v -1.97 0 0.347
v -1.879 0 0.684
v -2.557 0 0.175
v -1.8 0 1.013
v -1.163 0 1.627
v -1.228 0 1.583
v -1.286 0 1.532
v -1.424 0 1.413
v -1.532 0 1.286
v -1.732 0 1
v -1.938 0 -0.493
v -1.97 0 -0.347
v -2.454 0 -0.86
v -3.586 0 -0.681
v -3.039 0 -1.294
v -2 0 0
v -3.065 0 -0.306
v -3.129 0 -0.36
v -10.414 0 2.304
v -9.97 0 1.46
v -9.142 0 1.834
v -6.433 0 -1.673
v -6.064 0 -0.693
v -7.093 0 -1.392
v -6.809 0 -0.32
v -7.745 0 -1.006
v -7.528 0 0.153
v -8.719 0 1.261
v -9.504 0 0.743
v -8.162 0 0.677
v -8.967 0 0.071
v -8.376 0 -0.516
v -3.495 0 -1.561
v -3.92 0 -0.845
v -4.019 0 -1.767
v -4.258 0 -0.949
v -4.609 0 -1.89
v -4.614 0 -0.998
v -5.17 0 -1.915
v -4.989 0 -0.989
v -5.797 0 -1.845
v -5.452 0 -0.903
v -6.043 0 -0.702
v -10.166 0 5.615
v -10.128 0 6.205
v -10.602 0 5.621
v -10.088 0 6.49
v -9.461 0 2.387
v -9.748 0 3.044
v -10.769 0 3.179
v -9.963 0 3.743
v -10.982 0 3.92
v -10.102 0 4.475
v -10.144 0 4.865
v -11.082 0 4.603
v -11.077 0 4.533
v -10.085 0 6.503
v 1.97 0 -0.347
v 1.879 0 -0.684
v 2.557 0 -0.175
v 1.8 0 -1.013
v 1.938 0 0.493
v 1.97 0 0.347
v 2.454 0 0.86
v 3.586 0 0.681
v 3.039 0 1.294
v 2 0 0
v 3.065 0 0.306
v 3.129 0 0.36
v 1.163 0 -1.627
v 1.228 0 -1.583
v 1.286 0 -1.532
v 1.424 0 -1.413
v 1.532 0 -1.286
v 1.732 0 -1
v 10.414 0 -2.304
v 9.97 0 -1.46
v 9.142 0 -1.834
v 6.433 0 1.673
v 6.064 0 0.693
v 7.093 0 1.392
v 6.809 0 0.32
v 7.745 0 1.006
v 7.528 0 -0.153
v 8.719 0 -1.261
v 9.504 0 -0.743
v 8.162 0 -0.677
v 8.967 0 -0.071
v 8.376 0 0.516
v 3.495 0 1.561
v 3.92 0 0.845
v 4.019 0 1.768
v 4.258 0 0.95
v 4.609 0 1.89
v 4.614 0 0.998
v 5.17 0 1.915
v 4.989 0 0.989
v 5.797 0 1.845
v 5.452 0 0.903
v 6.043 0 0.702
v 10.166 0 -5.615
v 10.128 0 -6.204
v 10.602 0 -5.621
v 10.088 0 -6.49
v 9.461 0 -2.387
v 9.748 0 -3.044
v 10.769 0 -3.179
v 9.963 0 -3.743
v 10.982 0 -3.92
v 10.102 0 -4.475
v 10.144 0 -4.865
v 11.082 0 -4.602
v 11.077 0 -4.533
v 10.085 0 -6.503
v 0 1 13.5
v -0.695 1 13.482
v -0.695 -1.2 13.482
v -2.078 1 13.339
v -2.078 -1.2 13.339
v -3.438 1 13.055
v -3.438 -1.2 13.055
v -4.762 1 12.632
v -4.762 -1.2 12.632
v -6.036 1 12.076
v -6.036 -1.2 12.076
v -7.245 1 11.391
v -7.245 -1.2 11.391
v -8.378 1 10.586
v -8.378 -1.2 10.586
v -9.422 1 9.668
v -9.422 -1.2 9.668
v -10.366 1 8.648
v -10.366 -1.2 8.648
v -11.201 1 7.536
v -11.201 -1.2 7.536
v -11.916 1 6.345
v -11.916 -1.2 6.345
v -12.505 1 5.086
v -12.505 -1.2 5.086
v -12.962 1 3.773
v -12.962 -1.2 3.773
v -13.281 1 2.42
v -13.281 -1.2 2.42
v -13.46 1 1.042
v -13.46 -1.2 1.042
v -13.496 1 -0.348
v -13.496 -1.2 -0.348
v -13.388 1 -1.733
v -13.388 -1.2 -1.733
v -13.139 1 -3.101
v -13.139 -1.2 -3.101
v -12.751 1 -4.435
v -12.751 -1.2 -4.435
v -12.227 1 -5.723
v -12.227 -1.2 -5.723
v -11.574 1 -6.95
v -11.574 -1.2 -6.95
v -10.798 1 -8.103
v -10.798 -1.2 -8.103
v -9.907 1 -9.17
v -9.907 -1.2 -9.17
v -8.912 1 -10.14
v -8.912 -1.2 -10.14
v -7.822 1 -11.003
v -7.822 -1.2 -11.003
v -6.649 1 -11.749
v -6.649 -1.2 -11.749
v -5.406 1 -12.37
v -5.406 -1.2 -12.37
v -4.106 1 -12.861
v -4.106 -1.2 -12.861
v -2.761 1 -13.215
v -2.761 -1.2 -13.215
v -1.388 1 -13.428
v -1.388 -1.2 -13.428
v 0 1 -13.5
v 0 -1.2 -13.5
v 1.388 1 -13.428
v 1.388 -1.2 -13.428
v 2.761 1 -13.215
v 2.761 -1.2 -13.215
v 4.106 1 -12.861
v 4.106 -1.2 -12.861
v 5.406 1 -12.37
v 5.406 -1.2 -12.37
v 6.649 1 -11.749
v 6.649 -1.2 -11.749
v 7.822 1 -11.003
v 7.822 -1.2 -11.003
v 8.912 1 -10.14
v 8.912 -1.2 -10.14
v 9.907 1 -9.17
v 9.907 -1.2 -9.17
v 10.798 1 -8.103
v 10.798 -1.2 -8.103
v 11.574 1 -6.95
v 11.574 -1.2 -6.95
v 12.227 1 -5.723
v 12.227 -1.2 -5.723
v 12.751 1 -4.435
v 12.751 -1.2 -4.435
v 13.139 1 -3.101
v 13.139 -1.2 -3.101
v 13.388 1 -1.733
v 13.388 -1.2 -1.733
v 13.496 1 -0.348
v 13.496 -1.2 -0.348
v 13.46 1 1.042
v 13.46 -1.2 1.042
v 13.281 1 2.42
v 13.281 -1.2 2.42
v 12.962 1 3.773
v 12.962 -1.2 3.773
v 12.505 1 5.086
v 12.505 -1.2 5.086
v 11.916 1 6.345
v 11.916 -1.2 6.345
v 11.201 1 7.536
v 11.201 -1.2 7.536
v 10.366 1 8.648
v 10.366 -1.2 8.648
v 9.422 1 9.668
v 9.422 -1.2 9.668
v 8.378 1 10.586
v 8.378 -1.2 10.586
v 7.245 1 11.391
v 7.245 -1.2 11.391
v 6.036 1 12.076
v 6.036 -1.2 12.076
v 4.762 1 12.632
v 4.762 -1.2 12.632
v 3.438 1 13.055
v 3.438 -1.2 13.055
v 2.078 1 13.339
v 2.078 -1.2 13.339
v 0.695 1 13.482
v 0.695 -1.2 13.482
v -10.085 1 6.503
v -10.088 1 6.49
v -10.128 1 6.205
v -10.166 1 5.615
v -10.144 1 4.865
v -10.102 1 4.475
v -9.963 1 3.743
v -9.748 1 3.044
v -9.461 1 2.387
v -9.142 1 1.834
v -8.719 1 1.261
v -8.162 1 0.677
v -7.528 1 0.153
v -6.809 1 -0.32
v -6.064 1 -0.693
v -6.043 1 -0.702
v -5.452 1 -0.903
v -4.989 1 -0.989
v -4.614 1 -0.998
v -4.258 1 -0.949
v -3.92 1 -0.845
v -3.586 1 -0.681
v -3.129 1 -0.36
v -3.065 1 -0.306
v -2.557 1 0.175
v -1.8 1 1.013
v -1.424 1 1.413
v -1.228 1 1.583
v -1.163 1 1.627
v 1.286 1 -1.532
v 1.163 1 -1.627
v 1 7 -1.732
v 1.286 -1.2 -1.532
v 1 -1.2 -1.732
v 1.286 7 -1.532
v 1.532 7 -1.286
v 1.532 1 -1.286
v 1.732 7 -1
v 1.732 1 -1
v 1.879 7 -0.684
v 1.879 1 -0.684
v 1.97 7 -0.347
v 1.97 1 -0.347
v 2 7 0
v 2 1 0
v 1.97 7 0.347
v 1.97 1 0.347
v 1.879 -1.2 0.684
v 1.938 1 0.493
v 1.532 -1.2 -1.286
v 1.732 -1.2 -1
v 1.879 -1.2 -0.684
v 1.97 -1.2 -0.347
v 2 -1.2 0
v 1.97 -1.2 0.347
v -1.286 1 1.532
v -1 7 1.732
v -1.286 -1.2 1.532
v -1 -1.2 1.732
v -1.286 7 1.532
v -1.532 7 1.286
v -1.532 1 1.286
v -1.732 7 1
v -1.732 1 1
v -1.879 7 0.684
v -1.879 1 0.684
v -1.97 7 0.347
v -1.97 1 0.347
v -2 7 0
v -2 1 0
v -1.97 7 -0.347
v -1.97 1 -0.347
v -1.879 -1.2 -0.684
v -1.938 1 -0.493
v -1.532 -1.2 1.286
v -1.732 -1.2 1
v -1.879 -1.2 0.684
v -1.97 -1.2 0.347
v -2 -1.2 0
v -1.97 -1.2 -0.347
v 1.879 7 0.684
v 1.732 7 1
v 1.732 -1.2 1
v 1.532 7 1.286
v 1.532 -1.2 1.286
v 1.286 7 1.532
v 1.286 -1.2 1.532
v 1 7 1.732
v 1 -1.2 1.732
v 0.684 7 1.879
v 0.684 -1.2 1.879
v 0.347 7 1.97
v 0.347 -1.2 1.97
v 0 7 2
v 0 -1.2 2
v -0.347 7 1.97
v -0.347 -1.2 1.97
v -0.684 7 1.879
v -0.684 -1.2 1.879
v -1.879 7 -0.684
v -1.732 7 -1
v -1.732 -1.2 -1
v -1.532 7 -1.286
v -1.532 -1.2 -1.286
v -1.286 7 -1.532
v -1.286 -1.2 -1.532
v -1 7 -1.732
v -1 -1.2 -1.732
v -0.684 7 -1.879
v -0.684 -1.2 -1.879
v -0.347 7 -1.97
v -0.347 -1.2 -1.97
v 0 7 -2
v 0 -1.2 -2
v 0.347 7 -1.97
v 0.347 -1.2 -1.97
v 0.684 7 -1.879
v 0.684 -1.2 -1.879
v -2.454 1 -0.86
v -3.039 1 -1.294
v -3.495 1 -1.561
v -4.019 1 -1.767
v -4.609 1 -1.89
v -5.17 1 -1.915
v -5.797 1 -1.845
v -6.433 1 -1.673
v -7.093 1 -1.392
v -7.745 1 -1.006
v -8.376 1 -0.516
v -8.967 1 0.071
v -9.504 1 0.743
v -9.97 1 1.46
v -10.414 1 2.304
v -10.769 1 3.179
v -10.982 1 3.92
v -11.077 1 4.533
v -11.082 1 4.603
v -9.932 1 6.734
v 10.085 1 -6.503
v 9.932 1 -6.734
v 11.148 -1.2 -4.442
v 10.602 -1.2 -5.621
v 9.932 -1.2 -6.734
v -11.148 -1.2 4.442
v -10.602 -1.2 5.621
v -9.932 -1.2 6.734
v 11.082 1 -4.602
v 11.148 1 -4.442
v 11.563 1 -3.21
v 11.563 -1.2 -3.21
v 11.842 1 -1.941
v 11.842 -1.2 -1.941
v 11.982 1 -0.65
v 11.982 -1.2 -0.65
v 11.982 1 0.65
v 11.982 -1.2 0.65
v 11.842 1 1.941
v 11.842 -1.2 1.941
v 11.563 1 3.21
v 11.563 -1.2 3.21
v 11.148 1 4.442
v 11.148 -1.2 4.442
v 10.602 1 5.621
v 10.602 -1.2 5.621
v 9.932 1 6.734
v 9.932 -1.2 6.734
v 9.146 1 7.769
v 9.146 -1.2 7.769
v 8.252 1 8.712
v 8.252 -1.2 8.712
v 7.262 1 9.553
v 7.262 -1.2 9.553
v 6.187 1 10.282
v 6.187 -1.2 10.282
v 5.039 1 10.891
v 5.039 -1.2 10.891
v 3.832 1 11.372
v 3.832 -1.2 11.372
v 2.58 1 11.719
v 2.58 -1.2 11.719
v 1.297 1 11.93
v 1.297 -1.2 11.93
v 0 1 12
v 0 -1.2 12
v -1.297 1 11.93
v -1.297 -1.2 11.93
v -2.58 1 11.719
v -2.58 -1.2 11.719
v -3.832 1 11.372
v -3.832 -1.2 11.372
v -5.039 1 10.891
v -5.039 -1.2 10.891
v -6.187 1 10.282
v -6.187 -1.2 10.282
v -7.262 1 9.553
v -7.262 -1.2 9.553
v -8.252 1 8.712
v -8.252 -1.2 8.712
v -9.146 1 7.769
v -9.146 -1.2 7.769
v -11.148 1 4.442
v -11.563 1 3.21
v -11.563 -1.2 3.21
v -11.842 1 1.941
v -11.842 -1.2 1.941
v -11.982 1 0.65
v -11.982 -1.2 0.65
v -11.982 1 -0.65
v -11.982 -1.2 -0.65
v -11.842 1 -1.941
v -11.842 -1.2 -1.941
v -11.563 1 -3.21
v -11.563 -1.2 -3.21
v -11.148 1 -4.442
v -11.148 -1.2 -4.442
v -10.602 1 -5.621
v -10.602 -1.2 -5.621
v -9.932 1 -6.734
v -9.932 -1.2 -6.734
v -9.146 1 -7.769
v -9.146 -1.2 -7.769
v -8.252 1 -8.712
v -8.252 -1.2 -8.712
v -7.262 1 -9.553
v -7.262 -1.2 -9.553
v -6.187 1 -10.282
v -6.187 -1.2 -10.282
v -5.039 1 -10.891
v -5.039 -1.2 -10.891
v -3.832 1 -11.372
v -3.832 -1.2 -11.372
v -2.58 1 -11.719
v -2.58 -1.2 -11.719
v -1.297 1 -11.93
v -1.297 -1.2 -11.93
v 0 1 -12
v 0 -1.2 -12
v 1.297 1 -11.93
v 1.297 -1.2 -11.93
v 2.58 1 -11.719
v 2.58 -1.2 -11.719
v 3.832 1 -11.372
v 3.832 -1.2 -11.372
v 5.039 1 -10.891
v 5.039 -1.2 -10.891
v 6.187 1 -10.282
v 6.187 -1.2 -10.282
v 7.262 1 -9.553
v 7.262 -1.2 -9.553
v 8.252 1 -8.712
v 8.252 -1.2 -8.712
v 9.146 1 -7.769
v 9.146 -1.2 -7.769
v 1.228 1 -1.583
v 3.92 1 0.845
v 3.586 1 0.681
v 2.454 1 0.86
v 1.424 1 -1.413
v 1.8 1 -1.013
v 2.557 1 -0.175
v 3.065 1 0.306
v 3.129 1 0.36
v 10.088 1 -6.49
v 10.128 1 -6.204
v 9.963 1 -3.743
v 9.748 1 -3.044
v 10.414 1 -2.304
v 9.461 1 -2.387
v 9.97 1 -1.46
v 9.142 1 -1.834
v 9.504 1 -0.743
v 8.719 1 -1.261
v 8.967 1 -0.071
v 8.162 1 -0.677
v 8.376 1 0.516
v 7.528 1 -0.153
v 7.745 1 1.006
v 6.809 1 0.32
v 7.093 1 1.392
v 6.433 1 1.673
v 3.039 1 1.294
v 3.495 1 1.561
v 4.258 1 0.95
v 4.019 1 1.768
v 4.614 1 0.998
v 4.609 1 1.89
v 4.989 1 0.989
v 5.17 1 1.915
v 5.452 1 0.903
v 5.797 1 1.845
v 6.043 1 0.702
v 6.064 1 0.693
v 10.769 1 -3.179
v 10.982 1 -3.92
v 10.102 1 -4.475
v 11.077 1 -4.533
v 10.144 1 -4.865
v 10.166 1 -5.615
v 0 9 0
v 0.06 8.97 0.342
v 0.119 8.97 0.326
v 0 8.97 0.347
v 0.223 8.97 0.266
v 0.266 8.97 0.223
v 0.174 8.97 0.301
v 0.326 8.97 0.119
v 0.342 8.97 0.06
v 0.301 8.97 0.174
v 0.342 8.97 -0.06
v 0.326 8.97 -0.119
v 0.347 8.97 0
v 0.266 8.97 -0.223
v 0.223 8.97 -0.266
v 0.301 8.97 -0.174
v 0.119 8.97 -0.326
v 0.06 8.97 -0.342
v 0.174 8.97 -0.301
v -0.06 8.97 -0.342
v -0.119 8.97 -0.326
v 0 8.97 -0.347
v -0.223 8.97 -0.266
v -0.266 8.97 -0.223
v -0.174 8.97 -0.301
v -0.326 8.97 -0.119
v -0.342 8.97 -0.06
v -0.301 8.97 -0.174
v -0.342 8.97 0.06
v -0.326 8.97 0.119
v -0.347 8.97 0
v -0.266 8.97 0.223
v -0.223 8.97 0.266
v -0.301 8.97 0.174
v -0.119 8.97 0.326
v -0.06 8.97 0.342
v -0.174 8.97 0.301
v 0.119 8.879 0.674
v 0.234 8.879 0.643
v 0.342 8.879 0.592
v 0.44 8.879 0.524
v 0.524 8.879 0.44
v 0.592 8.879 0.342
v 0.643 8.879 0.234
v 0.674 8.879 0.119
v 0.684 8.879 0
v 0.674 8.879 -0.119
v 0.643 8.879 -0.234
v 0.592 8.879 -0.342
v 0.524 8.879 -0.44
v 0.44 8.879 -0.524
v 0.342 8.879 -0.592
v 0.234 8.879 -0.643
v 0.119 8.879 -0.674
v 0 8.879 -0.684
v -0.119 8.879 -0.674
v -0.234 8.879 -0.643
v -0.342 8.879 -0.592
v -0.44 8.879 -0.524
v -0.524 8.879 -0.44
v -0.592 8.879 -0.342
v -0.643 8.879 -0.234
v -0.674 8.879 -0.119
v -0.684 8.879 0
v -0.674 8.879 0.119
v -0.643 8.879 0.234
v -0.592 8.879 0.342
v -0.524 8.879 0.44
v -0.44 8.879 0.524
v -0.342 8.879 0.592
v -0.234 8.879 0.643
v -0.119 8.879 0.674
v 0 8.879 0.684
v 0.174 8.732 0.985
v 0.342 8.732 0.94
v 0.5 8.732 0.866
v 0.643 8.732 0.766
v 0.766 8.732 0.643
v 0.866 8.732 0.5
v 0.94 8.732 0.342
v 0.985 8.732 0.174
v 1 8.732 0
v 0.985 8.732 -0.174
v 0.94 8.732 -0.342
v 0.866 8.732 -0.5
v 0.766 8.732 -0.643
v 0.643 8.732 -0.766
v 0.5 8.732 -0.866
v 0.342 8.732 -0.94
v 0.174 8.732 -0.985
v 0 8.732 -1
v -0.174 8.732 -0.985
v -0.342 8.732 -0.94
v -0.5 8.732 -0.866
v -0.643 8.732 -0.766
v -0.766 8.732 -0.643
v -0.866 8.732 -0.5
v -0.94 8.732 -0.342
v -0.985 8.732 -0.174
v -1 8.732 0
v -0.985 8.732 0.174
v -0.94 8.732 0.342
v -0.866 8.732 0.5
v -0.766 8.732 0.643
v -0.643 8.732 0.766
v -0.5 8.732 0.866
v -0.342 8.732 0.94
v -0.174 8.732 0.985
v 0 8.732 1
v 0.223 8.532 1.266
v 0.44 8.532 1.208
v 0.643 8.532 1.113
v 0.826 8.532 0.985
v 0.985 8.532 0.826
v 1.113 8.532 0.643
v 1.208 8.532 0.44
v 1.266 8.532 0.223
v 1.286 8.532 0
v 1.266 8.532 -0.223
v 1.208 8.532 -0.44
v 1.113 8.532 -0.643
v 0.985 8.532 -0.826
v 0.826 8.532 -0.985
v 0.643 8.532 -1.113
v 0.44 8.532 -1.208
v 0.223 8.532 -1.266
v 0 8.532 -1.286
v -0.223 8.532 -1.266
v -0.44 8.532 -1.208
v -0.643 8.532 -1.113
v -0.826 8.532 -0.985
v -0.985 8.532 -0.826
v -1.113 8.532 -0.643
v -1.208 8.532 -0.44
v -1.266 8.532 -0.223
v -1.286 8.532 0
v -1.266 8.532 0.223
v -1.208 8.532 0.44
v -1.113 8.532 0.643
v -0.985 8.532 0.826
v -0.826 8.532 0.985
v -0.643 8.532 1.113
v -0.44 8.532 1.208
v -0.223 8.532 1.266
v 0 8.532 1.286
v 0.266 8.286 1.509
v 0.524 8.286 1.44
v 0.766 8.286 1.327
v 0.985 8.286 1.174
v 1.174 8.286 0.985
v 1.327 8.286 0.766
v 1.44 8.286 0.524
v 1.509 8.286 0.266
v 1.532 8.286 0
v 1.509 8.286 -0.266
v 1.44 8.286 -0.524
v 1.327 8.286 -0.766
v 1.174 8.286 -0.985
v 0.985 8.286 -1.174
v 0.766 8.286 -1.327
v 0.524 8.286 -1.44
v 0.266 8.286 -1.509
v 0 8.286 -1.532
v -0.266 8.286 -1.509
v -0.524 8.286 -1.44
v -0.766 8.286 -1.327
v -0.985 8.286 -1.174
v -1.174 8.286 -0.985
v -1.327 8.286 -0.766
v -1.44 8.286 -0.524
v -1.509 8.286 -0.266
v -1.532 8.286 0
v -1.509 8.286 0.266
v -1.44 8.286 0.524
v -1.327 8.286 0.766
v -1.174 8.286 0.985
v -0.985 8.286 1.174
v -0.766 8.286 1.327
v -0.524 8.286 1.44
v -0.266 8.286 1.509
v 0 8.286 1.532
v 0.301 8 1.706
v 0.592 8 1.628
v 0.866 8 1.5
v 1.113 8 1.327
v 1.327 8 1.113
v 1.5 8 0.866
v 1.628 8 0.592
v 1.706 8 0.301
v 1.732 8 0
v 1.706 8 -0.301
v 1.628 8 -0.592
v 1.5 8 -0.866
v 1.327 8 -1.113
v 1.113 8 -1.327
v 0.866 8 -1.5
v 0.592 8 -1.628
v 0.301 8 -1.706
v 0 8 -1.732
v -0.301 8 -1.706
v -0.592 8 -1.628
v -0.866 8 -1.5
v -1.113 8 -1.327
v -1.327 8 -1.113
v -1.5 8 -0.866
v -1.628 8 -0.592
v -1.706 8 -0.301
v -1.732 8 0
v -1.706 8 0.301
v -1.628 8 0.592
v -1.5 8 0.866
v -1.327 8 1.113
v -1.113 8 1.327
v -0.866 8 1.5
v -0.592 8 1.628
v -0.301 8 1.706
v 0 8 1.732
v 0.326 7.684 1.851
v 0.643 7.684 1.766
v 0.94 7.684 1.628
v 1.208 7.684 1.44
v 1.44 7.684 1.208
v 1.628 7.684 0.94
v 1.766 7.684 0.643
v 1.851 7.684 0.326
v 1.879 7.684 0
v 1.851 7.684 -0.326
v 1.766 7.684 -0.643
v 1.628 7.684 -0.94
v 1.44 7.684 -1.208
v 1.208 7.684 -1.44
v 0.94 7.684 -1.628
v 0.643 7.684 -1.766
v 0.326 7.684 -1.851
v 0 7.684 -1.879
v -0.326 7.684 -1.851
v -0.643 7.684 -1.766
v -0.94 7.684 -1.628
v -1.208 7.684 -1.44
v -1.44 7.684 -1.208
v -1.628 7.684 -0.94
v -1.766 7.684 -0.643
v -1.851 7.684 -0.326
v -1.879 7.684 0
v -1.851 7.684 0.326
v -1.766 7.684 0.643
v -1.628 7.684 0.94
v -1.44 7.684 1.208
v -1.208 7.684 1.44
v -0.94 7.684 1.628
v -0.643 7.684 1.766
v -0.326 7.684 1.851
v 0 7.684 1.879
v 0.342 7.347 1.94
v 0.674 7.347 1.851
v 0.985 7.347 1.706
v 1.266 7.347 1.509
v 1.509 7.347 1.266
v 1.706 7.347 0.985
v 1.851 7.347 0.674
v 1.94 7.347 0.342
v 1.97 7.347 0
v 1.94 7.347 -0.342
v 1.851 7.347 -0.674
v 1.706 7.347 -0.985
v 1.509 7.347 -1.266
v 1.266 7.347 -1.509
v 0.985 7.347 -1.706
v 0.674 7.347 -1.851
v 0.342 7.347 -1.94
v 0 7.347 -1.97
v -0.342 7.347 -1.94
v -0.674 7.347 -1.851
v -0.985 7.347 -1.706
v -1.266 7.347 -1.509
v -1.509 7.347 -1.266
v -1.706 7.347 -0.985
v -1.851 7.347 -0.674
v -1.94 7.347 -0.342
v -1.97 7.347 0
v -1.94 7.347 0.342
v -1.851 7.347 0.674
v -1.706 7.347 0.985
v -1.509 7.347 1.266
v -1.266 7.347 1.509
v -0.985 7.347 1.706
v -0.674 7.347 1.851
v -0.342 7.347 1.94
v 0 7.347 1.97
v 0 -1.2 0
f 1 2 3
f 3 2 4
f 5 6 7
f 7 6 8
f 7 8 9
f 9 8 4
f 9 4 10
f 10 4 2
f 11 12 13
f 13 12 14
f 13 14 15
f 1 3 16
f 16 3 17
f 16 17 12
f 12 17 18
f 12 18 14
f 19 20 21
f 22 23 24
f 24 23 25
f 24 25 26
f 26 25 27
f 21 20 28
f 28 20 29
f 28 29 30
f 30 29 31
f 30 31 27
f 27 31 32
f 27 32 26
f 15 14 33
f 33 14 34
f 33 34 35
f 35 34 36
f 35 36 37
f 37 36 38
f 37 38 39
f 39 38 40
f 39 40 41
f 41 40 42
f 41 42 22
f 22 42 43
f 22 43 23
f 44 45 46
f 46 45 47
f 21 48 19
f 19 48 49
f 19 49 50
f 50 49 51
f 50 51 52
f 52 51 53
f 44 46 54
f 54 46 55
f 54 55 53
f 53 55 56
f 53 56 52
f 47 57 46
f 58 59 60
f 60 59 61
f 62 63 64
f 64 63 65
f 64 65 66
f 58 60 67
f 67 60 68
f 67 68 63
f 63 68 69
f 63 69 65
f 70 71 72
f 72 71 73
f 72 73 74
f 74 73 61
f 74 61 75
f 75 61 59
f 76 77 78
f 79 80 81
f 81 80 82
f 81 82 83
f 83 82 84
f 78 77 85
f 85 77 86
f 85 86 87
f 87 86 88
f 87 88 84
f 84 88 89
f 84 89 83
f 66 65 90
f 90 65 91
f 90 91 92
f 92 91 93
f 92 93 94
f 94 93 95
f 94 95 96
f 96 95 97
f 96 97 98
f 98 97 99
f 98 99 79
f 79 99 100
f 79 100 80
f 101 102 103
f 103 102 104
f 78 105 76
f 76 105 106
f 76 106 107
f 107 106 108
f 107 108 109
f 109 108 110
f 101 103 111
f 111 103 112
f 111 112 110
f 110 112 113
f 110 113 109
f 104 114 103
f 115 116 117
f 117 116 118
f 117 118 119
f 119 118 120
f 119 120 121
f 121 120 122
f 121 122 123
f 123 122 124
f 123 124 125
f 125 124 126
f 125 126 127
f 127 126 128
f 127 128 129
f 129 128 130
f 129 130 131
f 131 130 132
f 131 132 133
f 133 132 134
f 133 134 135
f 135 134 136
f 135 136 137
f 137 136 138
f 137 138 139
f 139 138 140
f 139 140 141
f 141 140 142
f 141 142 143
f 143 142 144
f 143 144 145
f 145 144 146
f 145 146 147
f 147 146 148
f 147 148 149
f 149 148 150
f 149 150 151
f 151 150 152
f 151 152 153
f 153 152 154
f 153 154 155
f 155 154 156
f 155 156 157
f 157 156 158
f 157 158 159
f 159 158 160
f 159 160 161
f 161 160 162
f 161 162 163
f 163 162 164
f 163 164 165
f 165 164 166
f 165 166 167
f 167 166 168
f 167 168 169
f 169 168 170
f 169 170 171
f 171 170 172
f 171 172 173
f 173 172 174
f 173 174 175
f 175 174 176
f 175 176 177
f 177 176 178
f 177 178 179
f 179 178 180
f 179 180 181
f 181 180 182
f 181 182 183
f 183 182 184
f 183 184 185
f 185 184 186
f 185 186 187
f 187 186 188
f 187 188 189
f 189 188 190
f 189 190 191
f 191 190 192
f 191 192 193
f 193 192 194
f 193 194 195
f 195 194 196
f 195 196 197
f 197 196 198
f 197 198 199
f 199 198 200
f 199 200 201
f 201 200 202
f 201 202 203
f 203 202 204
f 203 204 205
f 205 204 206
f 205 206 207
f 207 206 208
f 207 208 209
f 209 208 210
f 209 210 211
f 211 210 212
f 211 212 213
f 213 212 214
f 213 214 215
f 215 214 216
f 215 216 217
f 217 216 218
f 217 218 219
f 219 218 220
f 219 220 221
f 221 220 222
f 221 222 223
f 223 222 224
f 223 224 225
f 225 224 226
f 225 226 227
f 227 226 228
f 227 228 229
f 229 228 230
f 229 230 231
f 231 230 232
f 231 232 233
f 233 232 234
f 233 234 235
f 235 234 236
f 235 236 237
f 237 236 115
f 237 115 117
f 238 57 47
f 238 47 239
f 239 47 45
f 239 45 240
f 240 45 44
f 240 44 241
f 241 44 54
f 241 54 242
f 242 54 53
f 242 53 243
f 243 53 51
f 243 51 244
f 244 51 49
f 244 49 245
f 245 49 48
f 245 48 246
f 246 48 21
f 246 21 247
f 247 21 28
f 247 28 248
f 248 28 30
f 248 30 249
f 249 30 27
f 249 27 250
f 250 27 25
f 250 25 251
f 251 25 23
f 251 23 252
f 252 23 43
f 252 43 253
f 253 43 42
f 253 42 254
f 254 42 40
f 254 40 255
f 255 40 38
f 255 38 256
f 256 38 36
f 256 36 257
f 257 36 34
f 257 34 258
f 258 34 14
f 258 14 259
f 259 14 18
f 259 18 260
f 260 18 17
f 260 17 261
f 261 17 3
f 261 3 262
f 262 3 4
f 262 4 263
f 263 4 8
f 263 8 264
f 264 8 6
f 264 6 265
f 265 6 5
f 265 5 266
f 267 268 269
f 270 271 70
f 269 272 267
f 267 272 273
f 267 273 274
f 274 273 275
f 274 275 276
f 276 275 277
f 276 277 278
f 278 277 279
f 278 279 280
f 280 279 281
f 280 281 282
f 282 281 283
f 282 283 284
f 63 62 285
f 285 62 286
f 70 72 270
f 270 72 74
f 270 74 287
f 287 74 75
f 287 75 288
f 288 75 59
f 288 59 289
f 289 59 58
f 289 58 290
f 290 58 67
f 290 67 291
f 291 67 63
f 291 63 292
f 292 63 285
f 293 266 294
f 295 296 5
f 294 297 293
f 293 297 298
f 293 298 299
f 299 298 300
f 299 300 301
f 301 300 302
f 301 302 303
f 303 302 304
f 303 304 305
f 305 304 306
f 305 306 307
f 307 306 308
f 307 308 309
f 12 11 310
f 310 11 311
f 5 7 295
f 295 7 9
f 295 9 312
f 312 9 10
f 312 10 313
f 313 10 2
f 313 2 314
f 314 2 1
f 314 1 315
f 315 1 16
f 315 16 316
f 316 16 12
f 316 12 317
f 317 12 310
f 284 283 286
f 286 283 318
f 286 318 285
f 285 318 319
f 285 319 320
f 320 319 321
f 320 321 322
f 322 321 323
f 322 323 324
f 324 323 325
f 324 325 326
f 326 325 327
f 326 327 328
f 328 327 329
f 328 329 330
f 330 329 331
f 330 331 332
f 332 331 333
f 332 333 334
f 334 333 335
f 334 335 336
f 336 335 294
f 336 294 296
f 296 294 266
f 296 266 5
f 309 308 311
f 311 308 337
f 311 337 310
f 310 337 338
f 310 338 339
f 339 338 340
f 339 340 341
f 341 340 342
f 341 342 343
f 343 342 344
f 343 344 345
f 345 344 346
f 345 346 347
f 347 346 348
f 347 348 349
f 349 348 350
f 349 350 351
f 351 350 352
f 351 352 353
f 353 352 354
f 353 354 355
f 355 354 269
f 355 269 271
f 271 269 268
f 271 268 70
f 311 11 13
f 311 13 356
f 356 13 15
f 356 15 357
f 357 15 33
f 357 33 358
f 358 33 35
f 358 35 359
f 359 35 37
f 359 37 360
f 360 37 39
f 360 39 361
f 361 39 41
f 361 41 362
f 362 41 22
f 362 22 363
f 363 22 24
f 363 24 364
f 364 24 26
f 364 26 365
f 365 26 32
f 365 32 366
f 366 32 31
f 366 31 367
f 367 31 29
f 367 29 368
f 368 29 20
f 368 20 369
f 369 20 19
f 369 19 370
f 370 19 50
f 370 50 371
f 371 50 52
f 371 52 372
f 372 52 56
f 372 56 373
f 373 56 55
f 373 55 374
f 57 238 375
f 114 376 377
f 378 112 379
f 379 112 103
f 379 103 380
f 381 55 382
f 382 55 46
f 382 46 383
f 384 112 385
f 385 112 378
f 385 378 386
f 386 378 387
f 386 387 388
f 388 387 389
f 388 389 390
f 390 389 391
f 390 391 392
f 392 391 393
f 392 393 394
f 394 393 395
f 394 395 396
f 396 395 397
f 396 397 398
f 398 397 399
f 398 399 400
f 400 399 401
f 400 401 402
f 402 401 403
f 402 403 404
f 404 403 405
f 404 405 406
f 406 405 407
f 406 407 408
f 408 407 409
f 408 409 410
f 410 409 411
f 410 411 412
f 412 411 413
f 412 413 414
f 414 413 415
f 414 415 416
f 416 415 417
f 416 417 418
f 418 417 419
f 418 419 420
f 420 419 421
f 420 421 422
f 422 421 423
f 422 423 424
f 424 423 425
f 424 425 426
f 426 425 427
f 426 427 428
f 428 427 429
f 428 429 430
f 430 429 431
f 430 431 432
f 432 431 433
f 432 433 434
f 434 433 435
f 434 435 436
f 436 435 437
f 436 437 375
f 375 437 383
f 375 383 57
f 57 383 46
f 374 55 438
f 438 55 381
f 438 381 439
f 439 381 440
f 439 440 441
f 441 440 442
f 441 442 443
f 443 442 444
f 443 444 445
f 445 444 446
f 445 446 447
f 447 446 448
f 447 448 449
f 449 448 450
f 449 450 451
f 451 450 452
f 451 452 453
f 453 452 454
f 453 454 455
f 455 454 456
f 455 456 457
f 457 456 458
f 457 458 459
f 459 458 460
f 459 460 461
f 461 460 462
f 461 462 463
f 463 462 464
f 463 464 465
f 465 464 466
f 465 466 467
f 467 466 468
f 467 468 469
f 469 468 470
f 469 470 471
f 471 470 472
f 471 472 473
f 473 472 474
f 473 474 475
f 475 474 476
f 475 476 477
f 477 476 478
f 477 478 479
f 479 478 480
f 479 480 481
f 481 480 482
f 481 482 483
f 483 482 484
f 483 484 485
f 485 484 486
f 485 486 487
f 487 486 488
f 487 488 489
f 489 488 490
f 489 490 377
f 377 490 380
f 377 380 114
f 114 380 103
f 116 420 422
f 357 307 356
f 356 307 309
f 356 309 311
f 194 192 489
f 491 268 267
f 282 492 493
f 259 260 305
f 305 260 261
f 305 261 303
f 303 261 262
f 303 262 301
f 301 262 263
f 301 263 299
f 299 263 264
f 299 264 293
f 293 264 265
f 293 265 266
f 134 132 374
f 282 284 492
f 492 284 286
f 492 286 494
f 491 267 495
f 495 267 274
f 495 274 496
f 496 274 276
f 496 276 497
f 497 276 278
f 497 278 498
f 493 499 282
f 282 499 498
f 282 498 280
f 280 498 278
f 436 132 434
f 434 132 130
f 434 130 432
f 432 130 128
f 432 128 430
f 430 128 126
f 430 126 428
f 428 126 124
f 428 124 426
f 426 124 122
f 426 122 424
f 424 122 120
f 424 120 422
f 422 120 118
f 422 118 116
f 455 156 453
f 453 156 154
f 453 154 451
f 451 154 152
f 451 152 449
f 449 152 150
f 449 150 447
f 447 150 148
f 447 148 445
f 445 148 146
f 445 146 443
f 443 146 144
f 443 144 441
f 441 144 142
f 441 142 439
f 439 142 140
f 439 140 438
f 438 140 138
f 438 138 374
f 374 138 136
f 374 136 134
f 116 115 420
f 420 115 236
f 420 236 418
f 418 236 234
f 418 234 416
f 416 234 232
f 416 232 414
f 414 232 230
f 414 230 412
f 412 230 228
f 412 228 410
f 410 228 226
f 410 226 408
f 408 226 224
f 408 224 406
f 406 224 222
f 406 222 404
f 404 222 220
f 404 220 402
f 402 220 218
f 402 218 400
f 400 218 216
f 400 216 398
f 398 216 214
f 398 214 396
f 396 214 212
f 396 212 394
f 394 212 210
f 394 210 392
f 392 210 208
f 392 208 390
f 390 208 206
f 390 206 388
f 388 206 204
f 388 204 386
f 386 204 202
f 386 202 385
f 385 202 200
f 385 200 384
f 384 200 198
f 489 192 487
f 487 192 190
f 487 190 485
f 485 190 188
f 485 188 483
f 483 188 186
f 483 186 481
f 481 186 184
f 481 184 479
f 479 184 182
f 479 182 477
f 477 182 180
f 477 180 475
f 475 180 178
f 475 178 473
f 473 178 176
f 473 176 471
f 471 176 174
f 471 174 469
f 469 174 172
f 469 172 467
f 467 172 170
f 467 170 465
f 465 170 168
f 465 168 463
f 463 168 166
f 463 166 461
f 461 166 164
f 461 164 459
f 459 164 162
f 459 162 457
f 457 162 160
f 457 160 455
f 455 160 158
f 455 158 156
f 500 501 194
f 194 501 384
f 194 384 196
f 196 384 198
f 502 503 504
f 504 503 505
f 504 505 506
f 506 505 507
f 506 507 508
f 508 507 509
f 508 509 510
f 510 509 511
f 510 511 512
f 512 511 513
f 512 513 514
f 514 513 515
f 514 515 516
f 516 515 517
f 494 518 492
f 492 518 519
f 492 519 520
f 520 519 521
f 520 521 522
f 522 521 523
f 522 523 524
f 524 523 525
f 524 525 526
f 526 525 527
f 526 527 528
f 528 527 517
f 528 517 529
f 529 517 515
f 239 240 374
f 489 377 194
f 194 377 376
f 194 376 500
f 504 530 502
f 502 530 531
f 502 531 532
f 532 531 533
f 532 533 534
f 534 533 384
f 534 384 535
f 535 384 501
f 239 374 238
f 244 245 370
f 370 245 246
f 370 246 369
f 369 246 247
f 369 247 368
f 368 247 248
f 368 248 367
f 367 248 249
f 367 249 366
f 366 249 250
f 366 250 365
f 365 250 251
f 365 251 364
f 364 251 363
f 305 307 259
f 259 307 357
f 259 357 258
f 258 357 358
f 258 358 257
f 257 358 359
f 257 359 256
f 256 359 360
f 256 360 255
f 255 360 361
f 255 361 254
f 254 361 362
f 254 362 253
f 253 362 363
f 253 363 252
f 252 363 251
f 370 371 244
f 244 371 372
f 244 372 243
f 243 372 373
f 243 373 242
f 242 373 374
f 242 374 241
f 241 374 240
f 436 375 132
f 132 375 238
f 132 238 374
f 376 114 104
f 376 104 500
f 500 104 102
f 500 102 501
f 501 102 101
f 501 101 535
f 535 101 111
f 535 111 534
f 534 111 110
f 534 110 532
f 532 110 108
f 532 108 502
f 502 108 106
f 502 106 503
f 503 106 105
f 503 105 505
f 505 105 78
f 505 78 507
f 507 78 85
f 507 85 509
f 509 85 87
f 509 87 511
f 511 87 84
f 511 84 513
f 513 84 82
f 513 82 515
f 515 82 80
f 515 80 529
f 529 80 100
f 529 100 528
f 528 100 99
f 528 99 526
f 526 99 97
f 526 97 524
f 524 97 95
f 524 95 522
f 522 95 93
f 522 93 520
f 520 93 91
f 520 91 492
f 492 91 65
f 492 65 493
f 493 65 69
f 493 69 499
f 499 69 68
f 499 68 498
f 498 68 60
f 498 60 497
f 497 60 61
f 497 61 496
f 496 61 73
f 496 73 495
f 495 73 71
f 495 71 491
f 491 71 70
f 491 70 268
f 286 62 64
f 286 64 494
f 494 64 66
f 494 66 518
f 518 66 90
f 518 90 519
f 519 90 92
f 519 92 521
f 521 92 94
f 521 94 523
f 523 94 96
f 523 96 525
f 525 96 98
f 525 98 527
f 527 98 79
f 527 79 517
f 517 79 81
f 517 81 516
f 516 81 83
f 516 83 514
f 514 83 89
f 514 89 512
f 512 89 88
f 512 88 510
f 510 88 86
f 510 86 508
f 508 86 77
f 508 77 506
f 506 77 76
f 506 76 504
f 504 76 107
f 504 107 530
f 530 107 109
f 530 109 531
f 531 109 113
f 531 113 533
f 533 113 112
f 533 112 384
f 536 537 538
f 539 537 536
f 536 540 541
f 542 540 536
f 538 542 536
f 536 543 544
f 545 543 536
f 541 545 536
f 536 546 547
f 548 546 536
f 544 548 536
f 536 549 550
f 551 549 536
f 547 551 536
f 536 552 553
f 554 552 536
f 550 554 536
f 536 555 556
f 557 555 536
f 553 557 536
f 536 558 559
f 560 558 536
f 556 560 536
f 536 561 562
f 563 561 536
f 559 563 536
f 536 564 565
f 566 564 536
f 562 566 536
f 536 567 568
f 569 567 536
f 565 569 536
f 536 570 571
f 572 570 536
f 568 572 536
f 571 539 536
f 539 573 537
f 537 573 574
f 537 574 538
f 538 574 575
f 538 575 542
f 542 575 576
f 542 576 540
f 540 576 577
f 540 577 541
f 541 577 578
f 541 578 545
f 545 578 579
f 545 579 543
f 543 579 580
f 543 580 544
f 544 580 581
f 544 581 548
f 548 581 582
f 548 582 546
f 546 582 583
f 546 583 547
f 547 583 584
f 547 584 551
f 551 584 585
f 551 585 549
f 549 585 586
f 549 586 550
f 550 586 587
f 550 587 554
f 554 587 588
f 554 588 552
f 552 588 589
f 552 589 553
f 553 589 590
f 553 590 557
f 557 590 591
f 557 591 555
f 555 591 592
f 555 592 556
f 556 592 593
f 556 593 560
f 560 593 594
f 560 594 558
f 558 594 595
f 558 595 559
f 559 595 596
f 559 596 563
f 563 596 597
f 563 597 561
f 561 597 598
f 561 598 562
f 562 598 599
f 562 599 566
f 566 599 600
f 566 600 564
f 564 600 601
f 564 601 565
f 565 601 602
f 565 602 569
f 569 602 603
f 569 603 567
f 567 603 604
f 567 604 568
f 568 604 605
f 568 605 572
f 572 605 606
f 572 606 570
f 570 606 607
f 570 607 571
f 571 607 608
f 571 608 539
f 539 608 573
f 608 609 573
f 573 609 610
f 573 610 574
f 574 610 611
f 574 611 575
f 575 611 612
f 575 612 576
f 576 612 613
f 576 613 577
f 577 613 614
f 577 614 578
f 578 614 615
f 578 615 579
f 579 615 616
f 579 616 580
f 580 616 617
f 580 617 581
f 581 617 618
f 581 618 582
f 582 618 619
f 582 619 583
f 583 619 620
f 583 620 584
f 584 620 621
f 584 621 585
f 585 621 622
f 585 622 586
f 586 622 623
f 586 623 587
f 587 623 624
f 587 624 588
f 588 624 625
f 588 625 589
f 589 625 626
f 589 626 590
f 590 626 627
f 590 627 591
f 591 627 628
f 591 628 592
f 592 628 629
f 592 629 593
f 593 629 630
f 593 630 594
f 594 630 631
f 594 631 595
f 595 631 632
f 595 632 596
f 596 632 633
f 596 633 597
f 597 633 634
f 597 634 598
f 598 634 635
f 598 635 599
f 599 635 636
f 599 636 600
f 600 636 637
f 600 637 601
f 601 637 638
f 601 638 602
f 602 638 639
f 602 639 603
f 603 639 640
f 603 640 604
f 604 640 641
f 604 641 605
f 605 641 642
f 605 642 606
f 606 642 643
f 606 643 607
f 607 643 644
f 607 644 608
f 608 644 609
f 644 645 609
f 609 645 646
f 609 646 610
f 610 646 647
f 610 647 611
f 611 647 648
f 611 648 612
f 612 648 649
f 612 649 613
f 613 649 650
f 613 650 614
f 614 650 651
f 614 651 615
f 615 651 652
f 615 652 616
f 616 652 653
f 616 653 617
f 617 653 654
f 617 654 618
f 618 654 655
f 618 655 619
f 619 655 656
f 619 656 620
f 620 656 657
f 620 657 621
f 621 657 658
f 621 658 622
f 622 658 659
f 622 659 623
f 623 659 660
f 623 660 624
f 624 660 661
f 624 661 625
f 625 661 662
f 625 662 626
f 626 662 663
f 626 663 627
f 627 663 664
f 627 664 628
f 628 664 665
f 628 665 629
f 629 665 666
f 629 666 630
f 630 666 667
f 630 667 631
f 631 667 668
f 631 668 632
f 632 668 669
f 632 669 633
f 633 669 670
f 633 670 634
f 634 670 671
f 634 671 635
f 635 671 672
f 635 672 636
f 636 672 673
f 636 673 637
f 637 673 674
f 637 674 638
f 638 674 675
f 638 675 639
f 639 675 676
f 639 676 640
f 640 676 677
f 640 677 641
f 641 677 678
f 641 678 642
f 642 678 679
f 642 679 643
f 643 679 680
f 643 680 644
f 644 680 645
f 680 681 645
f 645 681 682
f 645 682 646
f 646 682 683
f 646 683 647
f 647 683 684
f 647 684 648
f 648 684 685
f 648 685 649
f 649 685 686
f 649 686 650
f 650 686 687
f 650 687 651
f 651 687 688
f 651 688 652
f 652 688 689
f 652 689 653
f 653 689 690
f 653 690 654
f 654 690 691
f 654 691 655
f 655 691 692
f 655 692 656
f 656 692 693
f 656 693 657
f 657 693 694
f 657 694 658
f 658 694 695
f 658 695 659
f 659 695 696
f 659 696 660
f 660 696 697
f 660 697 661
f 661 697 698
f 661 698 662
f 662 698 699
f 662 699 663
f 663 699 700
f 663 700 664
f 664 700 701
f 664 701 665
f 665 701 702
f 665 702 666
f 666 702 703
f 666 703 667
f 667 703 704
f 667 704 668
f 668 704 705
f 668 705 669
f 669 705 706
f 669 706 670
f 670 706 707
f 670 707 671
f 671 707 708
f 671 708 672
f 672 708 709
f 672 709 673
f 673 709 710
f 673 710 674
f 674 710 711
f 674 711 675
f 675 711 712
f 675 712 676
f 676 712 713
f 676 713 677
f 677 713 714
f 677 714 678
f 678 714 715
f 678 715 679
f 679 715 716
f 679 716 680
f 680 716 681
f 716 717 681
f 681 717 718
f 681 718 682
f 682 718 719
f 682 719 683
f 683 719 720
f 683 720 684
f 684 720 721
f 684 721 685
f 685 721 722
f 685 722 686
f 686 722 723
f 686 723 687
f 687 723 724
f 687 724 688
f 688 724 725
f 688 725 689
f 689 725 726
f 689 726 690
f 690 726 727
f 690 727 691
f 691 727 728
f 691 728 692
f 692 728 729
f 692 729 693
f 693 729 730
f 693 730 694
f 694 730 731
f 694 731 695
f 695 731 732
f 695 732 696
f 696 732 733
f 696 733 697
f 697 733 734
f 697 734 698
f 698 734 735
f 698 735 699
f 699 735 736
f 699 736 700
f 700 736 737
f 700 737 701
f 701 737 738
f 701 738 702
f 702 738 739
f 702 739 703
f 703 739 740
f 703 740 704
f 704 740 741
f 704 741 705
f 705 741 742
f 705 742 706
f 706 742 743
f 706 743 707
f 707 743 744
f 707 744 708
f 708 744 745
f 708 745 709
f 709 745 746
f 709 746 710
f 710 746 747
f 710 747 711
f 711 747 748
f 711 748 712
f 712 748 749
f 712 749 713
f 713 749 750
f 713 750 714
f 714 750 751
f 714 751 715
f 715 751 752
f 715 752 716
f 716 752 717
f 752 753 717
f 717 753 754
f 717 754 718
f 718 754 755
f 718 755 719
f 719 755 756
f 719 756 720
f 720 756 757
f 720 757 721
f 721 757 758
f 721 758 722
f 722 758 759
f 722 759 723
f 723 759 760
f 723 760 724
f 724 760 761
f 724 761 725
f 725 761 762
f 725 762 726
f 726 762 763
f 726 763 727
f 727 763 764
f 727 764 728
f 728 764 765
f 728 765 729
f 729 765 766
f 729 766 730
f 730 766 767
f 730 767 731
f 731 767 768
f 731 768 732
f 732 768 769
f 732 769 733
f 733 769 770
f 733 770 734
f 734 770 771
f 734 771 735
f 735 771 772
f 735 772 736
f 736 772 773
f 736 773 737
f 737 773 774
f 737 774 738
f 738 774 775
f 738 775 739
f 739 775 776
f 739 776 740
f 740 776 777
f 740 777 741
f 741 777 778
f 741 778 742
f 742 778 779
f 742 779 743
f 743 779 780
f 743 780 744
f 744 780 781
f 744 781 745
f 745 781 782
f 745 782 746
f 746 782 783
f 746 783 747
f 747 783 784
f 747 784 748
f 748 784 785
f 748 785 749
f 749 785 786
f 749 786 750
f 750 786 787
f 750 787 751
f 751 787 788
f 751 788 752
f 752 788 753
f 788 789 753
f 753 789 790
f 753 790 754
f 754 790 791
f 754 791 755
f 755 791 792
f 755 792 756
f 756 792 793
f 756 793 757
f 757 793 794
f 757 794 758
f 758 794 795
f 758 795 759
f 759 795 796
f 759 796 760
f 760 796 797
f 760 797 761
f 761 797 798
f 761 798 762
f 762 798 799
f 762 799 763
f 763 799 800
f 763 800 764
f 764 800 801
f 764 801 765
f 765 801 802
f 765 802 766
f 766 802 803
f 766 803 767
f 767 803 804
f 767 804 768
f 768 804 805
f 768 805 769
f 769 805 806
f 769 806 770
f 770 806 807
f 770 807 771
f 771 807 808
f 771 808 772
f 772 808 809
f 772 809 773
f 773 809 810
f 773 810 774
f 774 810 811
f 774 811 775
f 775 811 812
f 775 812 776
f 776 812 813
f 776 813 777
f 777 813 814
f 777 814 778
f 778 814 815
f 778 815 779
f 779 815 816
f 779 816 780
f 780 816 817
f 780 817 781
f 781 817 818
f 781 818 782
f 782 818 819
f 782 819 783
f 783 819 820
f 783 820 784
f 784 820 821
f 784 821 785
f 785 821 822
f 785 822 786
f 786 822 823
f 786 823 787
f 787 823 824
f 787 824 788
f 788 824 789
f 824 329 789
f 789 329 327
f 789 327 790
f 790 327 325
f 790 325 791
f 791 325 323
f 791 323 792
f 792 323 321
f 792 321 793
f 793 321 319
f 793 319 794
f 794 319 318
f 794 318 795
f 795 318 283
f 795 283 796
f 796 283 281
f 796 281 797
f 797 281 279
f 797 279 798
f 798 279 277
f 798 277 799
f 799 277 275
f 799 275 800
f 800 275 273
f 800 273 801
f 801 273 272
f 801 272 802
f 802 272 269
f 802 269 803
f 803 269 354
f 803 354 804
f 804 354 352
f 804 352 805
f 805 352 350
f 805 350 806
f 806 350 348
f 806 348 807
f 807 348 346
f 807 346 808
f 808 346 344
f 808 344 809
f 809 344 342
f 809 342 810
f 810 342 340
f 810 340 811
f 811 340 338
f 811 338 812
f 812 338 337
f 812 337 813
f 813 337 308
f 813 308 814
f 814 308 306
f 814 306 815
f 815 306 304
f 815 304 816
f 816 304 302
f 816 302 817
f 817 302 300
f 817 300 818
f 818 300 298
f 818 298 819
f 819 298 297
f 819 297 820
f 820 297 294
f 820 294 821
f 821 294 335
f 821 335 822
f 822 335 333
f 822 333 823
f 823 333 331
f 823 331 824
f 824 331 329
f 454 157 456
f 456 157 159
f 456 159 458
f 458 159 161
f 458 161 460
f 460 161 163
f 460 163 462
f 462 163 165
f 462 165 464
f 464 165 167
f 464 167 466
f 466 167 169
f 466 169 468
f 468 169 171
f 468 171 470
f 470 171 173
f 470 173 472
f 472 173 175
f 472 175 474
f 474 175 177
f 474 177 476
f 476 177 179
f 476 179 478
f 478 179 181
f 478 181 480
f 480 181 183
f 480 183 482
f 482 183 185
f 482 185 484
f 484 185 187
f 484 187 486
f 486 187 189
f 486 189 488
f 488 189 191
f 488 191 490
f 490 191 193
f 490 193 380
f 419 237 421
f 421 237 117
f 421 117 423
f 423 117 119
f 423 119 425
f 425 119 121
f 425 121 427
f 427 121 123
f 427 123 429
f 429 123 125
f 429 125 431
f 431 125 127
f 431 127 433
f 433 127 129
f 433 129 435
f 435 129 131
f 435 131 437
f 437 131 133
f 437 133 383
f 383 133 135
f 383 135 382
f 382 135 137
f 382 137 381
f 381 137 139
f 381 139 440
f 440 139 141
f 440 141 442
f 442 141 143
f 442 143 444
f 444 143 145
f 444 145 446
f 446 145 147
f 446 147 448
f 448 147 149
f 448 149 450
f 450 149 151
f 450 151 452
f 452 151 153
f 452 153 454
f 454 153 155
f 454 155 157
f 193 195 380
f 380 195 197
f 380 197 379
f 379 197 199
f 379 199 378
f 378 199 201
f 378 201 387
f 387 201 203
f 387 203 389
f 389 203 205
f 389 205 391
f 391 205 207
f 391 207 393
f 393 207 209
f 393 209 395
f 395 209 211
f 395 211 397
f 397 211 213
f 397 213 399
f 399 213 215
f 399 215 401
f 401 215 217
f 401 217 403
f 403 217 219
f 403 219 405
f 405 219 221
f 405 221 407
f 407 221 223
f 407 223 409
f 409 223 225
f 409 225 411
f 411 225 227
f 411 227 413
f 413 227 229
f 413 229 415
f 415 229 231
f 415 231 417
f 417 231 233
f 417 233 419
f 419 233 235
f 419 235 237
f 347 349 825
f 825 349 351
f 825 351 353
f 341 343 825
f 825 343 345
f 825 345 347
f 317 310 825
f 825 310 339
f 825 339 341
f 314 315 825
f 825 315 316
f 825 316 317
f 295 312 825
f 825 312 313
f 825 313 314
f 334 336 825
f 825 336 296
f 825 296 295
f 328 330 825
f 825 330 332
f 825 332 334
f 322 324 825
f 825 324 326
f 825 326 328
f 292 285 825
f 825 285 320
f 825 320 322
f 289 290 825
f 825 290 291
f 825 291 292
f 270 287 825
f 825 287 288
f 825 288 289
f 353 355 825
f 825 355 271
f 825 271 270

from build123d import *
from build123d.topology import SkipClean

# Parameters (mm, degrees)
SALIENTE_EXTRUIR1_DEPTH = 1
MATRIZC1_COUNT          = 2
CROQUIS2_R              = 2
SALIENTE_EXTRUIR2_DEPTH = 8
REDONDEO1_R             = 2
SALIENTE_EXTRUIR3_START = 1.2
CROQUIS3_R              = 13.5
CROQUIS3_R_2            = 12
SALIENTE_EXTRUIR3_DEPTH = 1.2
SALIENTE_EXTRUIR4_START = 1.2
CROQUIS4_R              = 2
SALIENTE_EXTRUIR4_DEPTH = 1.2


with BuildPart() as part:
    # Croquis1 → Saliente-Extruir1 (new body)
    with BuildSketch(Plane(origin=(0, 0, 0), x_dir=(1, 0, 0), z_dir=(0, 1, 0))):
        with BuildLine():
            Line((0, 13.5), (0, 12))
            ThreePointArc((0, 12), (-9.980726138, 6.662214779), (-11.082290197, -4.602482373))
            add(Edge.make_bspline(
                [(-11.082290197, -4.602482373), (-11.00840419, -3.348074009), (-9.319606871, 0.45967832), (-5.885100929, 2.140100591), (-3.256465409, 1.683534759), (-2.521994609, 0.852903354), (-1.938361352, 0.49270201)],
                knots=[0, 0, 0, 0, 0.307401752, 0.611772427, 0.741286119, 1, 1, 1, 1], degree=3))
            ThreePointArc((-1.938361352, 0.49270201), (-1.227720648, 1.578829316), (0, 2))
            Line((0, 2), (0, -2))
            ThreePointArc((0, -2), (-0.610407114, -1.904574271), (-1.162565685, -1.627403155))
            add(Edge.make_bspline(
                [(-10.085301, -6.502822752), (-10.082838156, -6.506642403), (-10.985626663, -2.087609579), (-5.366270818, 1.292290157), (-2.947582336, 0.671775941), (-1.66061048, -1.320024502), (-1.162565685, -1.627403155)],
                knots=[0, 0, 0, 0, 0.481214874, 0.664290716, 0.77922591, 1, 1, 1, 1], degree=3))
            ThreePointArc((-10.085301, -6.502822752), (-5.743088323, -10.536457493), (0, -12))
            Line((0, -12), (0, -13.5))
            ThreePointArc((0, -13.5), (-13.5, 0), (0, 13.5))
        make_face()
    saliente_extruir1 = extrude(amount=SALIENTE_EXTRUIR1_DEPTH)

    # MatrizC1: Saliente-Extruir1 ×2 about axis
    matrizc1_axis = Axis((0, 1.05, 0), (0, -1, 0))
    for i in range(1, MATRIZC1_COUNT):
        add(saliente_extruir1.rotate(matrizc1_axis, i * 360 / MATRIZC1_COUNT))

    # Croquis2 → Saliente-Extruir2 (add)
    with BuildSketch(Plane(origin=(0, 1, 0), x_dir=(1, 0, 0), z_dir=(0, 1, 0))):
        Circle(CROQUIS2_R)
    extrude(amount=SALIENTE_EXTRUIR2_DEPTH)

    # Redondeo1
    redondeo1_edges = [part.edges().sort_by_distance(p)[0] for p in [
        (-2, 9, 0),
    ]]
    fillet(redondeo1_edges, radius=REDONDEO1_R)

    # Croquis3 → Saliente-Extruir3 (add)
    with SkipClean():  # the faces are left unmerged after this step: merging them gives an invalid solid
        with BuildSketch(Plane.XZ.offset(SALIENTE_EXTRUIR3_START)):
            Circle(CROQUIS3_R)
            Circle(CROQUIS3_R_2, mode=Mode.SUBTRACT)
        extrude(amount=-SALIENTE_EXTRUIR3_DEPTH)

    # Croquis4 → Saliente-Extruir4 (add)
    with SkipClean():  # the faces are left unmerged after this step: merging them gives an invalid solid
        with BuildSketch(Plane.XZ.offset(SALIENTE_EXTRUIR4_START)):
            Circle(CROQUIS4_R)
        extrude(amount=-SALIENTE_EXTRUIR4_DEPTH)


solid = part.part
